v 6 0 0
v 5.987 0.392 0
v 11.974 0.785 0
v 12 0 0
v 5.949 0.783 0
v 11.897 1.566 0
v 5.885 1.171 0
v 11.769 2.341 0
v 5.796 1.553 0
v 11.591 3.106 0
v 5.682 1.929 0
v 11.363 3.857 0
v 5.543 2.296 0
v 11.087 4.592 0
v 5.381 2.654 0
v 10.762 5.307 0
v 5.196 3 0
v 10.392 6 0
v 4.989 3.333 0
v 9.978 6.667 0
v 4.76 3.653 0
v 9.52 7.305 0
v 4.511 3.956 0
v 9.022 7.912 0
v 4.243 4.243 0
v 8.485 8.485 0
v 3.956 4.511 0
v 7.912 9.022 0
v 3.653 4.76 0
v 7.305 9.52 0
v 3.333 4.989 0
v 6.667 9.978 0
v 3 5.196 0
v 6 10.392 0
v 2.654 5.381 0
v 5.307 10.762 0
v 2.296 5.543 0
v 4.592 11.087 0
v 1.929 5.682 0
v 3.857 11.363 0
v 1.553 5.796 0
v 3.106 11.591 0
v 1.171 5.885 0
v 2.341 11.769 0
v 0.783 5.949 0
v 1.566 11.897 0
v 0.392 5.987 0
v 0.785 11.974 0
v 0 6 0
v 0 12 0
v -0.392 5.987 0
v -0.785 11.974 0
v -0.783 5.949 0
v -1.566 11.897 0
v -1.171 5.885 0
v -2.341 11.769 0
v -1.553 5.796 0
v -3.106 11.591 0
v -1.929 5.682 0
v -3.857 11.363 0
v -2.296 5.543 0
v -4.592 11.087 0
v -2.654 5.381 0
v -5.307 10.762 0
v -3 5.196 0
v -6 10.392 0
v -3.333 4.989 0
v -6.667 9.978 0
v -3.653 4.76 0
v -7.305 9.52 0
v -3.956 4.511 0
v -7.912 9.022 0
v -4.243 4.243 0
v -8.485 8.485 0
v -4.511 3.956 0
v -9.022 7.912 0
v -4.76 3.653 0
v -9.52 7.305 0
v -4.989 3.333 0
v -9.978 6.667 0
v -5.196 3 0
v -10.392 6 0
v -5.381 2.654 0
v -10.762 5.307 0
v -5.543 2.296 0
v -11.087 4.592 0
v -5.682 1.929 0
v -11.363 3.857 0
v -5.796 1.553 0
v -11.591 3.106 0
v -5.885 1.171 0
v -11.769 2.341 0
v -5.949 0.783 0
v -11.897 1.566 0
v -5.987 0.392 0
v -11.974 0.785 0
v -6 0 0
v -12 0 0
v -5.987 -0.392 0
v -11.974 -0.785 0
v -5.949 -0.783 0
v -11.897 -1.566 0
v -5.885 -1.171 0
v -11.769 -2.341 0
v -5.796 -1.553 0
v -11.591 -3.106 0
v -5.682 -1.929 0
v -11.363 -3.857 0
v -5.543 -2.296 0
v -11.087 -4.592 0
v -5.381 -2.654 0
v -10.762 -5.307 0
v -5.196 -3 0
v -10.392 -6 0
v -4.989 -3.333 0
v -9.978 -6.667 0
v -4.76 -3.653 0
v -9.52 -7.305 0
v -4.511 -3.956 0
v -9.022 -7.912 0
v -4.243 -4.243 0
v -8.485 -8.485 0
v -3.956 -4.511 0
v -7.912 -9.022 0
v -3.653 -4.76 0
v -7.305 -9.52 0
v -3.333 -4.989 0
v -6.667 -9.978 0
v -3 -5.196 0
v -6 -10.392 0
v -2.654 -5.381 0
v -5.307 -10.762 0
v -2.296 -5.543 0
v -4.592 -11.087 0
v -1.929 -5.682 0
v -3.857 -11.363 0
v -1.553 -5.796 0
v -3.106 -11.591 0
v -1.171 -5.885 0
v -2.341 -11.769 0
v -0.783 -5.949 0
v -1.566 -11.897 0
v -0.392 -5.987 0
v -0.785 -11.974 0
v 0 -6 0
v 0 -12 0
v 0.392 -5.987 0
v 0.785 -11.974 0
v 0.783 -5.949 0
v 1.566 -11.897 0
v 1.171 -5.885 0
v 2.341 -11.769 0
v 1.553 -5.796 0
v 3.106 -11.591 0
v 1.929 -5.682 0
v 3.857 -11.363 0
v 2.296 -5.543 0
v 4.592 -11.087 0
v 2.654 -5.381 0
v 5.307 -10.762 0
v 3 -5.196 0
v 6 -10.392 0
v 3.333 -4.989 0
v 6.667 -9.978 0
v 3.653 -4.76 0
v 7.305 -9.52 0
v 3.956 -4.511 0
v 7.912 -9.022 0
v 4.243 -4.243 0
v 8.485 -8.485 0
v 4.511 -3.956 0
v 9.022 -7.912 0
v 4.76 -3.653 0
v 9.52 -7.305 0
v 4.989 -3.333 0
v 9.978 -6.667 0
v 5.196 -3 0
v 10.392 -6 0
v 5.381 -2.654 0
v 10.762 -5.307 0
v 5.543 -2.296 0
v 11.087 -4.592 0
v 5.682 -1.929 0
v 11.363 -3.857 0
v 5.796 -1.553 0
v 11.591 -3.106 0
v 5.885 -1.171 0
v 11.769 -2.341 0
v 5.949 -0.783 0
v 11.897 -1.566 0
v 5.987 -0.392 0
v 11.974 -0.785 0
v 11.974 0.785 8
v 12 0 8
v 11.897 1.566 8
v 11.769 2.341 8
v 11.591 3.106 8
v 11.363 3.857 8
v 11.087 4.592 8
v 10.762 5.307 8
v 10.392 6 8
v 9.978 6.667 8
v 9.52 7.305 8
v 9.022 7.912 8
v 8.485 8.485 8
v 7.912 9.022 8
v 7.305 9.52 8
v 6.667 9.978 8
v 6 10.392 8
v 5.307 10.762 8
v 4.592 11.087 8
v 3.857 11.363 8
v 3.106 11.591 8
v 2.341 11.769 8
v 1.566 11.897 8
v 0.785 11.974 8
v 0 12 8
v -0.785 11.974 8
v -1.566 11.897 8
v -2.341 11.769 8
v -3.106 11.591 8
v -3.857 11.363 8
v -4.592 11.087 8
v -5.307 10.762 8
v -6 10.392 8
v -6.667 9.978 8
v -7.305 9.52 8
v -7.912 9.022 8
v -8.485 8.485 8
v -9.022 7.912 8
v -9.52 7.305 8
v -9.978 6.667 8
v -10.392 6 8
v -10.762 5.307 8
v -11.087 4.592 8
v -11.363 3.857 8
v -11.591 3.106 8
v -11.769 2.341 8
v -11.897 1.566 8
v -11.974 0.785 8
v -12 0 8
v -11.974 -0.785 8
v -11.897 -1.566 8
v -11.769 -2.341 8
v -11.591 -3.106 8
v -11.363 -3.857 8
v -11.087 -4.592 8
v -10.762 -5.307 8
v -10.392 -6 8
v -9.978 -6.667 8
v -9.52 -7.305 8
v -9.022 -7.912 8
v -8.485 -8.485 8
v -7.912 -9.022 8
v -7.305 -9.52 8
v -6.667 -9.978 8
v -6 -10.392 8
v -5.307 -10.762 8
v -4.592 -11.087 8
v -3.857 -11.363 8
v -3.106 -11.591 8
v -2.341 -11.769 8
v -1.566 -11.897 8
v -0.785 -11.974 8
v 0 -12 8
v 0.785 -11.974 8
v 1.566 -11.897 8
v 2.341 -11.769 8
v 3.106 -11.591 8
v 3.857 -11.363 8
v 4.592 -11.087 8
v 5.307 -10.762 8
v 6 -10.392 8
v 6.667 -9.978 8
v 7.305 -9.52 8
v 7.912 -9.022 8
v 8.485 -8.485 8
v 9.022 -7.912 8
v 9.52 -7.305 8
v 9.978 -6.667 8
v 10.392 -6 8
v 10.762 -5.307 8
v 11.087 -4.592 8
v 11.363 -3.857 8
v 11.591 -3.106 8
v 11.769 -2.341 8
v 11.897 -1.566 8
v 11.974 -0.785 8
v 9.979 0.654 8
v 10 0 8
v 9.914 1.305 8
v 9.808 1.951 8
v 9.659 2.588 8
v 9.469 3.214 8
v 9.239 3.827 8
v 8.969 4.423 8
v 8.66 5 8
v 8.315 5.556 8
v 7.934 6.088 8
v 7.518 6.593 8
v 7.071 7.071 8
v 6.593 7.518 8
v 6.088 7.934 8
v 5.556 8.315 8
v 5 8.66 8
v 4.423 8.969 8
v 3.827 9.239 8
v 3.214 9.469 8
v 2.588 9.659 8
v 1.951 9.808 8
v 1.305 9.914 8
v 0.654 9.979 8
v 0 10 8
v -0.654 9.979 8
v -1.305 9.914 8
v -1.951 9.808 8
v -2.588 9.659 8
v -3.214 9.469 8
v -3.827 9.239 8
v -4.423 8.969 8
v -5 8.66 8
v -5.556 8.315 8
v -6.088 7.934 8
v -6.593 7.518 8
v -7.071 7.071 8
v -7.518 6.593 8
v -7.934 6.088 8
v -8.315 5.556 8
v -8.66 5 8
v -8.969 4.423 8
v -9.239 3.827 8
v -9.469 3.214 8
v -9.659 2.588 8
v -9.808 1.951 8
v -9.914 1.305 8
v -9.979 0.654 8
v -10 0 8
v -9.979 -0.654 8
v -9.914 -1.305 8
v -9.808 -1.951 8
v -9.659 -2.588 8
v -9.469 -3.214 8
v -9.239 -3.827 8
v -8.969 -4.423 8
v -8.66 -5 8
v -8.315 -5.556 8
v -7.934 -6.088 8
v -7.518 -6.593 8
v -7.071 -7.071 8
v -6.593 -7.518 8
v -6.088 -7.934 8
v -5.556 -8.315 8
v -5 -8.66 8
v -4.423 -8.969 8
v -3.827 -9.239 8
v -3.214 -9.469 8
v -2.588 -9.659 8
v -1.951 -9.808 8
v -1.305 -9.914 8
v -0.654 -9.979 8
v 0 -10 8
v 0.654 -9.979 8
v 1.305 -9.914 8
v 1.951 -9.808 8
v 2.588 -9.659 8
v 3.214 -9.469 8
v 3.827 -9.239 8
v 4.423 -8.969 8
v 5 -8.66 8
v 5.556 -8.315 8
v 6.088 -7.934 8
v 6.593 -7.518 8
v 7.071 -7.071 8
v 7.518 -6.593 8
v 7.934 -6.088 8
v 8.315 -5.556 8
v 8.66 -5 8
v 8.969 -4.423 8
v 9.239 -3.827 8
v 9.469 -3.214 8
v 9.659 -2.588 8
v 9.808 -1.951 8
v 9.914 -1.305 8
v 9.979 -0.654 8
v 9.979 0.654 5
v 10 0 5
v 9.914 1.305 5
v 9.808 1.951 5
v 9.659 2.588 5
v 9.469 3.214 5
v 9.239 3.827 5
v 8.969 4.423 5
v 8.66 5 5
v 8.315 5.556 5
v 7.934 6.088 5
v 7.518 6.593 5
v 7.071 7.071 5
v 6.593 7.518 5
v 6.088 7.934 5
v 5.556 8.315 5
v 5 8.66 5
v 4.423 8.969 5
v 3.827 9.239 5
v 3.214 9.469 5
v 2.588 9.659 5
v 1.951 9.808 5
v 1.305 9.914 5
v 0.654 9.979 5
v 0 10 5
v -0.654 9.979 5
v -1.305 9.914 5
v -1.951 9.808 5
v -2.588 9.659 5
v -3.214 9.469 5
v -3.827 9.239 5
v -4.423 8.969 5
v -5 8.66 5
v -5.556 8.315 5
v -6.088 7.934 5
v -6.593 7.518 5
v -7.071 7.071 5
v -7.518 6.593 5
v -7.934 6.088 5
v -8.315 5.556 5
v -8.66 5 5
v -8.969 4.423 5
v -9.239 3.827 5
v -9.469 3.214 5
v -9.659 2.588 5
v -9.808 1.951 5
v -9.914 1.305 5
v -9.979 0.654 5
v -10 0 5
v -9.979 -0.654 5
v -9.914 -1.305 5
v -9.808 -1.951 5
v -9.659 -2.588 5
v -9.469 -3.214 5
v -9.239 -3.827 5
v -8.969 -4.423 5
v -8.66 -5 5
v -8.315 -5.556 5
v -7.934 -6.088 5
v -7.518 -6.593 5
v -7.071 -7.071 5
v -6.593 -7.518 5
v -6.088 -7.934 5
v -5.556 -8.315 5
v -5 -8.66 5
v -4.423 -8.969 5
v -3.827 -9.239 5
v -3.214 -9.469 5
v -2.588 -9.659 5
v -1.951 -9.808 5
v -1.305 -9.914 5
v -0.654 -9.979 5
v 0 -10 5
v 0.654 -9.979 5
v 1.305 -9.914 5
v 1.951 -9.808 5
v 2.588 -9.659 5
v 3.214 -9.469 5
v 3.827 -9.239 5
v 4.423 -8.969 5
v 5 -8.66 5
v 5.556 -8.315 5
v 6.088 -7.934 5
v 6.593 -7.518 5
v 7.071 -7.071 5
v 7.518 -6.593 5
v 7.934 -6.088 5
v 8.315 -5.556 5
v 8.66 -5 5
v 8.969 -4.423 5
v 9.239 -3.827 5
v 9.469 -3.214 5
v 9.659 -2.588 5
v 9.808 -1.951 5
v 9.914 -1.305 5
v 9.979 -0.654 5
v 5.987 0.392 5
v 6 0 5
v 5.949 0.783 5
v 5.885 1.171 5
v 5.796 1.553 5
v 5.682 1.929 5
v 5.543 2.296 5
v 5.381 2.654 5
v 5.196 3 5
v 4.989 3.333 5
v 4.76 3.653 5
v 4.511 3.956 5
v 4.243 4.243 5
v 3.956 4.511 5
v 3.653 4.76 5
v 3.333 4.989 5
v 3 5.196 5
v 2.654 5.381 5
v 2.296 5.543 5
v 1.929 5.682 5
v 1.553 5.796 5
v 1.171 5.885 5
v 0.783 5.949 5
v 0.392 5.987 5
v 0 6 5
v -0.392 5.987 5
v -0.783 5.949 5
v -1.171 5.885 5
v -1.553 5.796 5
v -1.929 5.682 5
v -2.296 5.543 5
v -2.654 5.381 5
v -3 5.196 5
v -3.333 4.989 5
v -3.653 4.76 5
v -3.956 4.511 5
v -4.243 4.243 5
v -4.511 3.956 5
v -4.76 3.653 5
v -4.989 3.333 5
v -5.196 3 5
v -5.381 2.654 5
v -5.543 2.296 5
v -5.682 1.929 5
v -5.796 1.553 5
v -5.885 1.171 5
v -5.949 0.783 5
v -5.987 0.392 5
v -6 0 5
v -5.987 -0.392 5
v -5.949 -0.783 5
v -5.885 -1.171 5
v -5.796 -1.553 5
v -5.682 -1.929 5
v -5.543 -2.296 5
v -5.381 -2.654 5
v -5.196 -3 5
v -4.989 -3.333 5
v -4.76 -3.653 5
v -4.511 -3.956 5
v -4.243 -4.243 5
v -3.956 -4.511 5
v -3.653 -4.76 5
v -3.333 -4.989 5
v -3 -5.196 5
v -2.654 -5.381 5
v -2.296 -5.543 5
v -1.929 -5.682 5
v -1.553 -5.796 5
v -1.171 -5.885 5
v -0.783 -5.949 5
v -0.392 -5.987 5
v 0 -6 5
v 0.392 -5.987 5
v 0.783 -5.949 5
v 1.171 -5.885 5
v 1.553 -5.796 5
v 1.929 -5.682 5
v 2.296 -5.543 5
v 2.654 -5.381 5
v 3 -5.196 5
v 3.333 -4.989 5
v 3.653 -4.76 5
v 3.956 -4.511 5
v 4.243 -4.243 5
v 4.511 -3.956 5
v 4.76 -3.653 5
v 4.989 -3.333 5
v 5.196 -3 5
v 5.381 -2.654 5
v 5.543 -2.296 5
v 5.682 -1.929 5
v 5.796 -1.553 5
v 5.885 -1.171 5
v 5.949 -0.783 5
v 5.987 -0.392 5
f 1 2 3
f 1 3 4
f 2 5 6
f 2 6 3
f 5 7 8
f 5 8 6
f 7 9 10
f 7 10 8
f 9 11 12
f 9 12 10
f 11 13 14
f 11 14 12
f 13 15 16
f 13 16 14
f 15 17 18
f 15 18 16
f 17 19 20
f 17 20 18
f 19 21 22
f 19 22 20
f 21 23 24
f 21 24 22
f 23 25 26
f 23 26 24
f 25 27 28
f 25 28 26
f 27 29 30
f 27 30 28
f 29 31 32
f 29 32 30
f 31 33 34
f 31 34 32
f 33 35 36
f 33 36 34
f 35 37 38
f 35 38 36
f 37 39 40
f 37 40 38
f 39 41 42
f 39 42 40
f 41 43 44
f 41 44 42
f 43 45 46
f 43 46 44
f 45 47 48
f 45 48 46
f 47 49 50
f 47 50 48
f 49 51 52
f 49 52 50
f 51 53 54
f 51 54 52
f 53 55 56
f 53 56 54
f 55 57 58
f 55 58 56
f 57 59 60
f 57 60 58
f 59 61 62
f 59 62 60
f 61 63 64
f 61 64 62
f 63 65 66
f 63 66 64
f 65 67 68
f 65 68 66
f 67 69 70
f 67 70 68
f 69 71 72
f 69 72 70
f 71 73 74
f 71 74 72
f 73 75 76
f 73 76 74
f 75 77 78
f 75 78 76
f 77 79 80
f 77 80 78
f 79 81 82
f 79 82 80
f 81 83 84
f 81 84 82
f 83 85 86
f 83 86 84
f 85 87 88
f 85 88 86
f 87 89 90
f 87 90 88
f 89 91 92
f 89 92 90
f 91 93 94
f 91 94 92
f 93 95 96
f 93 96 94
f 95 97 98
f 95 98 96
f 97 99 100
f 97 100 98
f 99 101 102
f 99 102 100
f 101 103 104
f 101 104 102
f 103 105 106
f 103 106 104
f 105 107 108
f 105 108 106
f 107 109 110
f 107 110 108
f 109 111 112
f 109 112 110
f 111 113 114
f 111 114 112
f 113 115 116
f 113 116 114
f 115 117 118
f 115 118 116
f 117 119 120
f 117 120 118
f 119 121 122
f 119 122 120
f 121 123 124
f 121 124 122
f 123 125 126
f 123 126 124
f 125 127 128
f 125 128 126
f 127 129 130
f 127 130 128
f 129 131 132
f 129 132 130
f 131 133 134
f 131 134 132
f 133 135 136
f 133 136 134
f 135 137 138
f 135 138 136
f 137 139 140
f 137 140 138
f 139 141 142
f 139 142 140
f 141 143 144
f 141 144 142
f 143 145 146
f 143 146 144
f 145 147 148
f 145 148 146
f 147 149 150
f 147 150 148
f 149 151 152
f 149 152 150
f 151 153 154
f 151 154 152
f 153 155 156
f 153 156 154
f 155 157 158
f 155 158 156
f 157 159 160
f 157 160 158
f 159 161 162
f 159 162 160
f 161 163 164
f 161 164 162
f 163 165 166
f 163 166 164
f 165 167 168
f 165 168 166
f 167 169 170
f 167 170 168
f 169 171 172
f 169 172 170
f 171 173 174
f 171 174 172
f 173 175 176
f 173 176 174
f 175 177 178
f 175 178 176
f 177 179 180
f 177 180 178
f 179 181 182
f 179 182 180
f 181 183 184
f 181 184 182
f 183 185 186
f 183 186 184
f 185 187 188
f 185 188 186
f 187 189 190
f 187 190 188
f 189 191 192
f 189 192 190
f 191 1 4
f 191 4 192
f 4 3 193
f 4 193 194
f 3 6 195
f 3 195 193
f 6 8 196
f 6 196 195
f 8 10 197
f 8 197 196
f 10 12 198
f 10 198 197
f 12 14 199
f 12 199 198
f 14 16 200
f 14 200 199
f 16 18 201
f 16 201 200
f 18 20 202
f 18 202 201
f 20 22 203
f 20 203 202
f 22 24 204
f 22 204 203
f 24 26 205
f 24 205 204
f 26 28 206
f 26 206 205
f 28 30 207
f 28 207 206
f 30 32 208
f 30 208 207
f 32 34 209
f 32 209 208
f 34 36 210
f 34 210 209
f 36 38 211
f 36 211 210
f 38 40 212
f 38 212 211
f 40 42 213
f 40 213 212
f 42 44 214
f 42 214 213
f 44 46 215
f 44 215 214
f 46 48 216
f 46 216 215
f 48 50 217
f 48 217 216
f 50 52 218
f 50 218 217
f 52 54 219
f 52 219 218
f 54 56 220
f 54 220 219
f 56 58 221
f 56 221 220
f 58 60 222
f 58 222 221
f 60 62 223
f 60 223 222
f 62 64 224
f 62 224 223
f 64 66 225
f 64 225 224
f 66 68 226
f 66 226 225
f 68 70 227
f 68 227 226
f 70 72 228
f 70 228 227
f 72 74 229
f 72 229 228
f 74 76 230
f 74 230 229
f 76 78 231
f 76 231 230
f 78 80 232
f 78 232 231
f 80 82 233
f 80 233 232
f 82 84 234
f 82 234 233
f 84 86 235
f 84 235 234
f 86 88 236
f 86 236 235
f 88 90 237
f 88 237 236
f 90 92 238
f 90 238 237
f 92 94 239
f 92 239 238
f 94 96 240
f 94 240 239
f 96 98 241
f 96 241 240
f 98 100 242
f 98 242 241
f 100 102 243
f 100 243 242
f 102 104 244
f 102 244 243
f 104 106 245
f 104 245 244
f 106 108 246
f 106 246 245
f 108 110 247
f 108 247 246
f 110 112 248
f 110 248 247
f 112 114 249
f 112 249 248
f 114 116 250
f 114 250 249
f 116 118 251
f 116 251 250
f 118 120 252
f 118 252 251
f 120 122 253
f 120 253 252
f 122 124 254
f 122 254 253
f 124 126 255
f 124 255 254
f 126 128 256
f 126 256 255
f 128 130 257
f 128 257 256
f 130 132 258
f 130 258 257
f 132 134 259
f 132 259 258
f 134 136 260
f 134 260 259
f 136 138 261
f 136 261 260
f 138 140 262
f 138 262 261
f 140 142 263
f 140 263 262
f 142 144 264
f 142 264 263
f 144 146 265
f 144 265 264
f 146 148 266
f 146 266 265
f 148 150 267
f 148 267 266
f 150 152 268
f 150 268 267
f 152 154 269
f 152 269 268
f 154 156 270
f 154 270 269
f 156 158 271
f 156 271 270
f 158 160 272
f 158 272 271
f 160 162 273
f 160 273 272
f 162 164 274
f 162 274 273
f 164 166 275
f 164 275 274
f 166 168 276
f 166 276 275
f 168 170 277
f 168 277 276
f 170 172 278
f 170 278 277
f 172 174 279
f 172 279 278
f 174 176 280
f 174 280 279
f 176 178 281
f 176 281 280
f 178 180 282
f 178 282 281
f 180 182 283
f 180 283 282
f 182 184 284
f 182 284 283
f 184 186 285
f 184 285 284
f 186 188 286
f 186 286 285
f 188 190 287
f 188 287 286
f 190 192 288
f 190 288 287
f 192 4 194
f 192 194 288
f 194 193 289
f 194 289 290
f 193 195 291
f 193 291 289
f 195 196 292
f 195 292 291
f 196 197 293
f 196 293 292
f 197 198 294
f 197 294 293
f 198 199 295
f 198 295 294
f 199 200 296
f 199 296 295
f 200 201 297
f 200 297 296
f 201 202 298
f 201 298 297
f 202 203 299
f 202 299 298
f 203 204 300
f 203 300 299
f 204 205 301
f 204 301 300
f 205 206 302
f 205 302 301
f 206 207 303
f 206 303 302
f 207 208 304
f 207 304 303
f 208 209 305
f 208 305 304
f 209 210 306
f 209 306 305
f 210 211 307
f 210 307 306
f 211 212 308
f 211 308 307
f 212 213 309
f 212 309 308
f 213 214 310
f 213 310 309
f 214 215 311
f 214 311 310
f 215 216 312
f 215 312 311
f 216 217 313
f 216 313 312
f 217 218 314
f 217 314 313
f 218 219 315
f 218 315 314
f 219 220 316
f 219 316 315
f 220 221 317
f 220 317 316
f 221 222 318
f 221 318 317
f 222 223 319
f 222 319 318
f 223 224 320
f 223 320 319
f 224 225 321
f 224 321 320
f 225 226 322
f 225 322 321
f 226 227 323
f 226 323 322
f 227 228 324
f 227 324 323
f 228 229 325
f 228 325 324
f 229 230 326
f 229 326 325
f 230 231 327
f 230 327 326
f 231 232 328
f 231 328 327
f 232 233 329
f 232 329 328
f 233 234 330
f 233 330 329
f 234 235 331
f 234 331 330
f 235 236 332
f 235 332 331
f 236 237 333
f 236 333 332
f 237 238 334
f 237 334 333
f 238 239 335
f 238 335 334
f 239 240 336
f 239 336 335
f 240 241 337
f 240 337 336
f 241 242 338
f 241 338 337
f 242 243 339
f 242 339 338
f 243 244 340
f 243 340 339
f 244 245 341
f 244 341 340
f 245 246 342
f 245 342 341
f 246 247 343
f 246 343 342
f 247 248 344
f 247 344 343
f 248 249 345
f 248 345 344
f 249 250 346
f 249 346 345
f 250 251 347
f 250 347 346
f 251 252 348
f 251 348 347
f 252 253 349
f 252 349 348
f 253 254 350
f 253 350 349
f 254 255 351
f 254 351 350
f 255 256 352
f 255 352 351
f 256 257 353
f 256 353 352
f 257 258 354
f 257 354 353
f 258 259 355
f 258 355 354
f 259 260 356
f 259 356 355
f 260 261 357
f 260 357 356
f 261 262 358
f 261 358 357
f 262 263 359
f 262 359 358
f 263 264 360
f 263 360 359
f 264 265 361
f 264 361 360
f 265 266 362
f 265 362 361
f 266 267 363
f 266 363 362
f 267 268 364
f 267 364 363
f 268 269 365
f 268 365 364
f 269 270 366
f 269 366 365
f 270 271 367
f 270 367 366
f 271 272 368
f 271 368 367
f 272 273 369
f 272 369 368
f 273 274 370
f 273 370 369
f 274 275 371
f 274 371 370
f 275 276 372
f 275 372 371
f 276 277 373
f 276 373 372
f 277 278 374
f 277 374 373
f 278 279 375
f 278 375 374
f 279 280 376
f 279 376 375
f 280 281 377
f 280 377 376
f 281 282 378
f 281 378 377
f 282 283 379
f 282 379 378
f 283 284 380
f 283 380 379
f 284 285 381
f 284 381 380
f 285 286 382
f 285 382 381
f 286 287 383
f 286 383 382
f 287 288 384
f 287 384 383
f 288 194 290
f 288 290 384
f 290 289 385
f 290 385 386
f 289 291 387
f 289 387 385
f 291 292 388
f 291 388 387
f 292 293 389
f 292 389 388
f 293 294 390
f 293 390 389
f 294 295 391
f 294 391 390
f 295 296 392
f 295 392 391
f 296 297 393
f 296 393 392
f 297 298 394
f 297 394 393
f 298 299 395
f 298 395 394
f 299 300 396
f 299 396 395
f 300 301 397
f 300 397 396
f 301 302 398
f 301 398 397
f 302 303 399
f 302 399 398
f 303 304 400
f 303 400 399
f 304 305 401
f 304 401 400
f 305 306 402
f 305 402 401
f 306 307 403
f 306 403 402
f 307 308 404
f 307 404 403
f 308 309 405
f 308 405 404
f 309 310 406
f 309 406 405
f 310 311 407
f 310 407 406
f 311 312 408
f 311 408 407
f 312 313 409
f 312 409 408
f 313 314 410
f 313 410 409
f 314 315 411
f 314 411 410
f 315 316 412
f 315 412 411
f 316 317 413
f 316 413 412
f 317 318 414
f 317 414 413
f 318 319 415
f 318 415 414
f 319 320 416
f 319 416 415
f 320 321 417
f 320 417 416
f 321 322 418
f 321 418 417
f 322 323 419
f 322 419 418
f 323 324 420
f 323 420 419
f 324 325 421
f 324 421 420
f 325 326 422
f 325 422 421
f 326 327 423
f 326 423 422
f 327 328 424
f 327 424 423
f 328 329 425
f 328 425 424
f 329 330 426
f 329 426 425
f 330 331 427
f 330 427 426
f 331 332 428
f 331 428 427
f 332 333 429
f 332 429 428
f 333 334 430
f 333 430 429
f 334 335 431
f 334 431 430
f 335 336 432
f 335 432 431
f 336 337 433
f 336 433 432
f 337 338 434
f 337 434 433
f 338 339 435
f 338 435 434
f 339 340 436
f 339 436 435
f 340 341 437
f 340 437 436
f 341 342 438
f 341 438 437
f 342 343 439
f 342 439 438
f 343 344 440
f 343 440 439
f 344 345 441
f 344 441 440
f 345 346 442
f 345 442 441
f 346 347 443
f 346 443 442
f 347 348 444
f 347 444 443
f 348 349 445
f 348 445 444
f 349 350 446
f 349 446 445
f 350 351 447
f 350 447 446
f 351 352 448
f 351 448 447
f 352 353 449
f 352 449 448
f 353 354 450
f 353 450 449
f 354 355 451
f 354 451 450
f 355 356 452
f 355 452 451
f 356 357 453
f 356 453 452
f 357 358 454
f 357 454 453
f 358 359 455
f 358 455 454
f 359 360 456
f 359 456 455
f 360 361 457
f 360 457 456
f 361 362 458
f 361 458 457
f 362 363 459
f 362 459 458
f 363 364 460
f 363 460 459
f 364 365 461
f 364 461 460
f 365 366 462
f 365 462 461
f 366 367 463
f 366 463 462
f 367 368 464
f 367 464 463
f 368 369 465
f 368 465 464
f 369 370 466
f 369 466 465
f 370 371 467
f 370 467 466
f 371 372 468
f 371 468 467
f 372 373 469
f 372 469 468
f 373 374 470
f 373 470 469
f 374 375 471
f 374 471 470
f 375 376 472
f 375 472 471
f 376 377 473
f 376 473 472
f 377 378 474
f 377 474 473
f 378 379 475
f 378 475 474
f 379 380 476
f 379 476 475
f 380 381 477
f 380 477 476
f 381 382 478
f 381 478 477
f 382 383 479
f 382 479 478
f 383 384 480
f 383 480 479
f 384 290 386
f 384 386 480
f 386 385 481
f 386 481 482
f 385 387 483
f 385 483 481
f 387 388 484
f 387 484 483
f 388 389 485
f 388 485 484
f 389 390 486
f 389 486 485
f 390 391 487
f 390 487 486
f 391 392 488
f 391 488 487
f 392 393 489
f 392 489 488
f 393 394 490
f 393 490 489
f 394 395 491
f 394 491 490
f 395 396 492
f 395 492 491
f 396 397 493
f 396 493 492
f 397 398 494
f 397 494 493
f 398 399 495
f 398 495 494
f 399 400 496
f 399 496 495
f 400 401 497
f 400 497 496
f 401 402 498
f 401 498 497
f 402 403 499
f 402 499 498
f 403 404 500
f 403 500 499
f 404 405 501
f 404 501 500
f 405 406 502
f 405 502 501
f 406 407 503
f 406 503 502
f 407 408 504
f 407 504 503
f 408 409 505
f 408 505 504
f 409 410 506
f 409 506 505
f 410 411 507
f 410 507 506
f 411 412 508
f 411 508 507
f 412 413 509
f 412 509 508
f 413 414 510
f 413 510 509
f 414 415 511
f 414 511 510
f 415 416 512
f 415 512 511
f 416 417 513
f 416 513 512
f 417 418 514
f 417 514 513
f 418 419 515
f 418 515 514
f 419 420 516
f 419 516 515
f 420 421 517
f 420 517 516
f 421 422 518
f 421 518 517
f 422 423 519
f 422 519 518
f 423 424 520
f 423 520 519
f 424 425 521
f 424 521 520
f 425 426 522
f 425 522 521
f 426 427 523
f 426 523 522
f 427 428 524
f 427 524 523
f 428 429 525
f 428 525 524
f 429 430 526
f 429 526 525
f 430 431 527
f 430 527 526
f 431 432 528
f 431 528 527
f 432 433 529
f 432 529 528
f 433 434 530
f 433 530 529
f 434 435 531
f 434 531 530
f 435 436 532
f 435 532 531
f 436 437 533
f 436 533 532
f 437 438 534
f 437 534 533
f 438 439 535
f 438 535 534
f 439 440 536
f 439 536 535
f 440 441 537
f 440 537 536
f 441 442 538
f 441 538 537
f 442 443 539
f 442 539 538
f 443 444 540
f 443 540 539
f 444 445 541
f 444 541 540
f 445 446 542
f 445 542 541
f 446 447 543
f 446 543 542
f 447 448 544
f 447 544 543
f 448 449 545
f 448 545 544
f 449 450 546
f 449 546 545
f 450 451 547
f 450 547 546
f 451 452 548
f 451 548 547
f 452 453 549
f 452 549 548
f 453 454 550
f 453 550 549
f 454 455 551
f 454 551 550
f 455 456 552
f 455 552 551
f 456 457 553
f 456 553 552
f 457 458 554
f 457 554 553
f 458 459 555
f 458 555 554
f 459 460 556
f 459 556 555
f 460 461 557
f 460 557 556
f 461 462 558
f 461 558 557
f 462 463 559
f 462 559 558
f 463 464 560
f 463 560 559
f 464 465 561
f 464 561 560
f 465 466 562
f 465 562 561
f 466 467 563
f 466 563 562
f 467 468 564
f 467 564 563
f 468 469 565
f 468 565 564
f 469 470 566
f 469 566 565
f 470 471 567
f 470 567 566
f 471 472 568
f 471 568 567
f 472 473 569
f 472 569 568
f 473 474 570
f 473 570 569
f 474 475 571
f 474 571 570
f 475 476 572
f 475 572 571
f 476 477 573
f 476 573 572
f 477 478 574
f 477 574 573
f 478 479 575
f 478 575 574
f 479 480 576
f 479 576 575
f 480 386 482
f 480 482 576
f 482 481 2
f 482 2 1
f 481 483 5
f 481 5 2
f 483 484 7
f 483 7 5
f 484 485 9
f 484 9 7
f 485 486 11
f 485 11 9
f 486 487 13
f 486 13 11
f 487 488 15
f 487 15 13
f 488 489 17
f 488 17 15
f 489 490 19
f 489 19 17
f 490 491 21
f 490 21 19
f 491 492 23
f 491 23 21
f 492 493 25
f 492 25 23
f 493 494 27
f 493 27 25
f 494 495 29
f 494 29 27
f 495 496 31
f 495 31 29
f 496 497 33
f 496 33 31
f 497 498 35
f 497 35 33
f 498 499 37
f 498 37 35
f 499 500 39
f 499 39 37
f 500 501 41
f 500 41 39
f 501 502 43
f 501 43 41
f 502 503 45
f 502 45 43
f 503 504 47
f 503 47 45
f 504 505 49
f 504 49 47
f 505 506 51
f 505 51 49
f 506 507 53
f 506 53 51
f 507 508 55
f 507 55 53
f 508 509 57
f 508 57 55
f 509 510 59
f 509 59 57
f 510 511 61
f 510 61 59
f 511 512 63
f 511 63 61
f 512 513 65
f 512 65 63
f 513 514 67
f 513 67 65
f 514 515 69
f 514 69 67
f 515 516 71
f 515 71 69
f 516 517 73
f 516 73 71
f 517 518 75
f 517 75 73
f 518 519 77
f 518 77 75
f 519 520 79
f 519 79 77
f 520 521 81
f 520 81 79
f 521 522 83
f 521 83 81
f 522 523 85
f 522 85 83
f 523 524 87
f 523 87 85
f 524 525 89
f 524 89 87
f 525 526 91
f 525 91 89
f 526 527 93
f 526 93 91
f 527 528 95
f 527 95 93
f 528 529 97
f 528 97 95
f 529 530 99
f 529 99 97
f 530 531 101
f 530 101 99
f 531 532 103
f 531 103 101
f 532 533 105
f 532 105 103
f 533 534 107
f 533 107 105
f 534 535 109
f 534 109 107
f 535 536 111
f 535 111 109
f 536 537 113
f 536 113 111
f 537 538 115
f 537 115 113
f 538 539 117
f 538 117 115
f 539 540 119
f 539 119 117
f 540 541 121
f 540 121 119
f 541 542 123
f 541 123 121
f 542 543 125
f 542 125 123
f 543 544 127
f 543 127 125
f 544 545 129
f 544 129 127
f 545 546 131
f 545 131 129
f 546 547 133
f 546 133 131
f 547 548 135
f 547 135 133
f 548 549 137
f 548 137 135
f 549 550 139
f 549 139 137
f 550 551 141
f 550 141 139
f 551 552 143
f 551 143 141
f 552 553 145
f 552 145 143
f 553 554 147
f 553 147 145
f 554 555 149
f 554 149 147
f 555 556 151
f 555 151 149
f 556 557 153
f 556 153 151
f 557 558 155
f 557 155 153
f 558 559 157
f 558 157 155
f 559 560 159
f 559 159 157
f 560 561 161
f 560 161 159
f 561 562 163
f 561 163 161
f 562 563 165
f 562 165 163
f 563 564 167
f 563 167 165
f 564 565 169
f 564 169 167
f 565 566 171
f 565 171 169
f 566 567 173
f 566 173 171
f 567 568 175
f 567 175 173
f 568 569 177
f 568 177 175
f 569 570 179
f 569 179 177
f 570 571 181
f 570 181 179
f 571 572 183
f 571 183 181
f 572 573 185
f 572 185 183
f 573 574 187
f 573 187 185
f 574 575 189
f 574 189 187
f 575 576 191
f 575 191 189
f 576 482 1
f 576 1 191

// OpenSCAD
// Original MechIntel educational model. CC0-1.0. Units: mm.
// Not a standardized or load-rated component.
$fn=96;
// Section points: [radius, height], mm. Edit to change the profile.
section=[[6, 0], [12, 0], [12, 8], [10, 8], [10, 5], [6, 5]];
rotate_extrude($fn=96) polygon(points=section);
